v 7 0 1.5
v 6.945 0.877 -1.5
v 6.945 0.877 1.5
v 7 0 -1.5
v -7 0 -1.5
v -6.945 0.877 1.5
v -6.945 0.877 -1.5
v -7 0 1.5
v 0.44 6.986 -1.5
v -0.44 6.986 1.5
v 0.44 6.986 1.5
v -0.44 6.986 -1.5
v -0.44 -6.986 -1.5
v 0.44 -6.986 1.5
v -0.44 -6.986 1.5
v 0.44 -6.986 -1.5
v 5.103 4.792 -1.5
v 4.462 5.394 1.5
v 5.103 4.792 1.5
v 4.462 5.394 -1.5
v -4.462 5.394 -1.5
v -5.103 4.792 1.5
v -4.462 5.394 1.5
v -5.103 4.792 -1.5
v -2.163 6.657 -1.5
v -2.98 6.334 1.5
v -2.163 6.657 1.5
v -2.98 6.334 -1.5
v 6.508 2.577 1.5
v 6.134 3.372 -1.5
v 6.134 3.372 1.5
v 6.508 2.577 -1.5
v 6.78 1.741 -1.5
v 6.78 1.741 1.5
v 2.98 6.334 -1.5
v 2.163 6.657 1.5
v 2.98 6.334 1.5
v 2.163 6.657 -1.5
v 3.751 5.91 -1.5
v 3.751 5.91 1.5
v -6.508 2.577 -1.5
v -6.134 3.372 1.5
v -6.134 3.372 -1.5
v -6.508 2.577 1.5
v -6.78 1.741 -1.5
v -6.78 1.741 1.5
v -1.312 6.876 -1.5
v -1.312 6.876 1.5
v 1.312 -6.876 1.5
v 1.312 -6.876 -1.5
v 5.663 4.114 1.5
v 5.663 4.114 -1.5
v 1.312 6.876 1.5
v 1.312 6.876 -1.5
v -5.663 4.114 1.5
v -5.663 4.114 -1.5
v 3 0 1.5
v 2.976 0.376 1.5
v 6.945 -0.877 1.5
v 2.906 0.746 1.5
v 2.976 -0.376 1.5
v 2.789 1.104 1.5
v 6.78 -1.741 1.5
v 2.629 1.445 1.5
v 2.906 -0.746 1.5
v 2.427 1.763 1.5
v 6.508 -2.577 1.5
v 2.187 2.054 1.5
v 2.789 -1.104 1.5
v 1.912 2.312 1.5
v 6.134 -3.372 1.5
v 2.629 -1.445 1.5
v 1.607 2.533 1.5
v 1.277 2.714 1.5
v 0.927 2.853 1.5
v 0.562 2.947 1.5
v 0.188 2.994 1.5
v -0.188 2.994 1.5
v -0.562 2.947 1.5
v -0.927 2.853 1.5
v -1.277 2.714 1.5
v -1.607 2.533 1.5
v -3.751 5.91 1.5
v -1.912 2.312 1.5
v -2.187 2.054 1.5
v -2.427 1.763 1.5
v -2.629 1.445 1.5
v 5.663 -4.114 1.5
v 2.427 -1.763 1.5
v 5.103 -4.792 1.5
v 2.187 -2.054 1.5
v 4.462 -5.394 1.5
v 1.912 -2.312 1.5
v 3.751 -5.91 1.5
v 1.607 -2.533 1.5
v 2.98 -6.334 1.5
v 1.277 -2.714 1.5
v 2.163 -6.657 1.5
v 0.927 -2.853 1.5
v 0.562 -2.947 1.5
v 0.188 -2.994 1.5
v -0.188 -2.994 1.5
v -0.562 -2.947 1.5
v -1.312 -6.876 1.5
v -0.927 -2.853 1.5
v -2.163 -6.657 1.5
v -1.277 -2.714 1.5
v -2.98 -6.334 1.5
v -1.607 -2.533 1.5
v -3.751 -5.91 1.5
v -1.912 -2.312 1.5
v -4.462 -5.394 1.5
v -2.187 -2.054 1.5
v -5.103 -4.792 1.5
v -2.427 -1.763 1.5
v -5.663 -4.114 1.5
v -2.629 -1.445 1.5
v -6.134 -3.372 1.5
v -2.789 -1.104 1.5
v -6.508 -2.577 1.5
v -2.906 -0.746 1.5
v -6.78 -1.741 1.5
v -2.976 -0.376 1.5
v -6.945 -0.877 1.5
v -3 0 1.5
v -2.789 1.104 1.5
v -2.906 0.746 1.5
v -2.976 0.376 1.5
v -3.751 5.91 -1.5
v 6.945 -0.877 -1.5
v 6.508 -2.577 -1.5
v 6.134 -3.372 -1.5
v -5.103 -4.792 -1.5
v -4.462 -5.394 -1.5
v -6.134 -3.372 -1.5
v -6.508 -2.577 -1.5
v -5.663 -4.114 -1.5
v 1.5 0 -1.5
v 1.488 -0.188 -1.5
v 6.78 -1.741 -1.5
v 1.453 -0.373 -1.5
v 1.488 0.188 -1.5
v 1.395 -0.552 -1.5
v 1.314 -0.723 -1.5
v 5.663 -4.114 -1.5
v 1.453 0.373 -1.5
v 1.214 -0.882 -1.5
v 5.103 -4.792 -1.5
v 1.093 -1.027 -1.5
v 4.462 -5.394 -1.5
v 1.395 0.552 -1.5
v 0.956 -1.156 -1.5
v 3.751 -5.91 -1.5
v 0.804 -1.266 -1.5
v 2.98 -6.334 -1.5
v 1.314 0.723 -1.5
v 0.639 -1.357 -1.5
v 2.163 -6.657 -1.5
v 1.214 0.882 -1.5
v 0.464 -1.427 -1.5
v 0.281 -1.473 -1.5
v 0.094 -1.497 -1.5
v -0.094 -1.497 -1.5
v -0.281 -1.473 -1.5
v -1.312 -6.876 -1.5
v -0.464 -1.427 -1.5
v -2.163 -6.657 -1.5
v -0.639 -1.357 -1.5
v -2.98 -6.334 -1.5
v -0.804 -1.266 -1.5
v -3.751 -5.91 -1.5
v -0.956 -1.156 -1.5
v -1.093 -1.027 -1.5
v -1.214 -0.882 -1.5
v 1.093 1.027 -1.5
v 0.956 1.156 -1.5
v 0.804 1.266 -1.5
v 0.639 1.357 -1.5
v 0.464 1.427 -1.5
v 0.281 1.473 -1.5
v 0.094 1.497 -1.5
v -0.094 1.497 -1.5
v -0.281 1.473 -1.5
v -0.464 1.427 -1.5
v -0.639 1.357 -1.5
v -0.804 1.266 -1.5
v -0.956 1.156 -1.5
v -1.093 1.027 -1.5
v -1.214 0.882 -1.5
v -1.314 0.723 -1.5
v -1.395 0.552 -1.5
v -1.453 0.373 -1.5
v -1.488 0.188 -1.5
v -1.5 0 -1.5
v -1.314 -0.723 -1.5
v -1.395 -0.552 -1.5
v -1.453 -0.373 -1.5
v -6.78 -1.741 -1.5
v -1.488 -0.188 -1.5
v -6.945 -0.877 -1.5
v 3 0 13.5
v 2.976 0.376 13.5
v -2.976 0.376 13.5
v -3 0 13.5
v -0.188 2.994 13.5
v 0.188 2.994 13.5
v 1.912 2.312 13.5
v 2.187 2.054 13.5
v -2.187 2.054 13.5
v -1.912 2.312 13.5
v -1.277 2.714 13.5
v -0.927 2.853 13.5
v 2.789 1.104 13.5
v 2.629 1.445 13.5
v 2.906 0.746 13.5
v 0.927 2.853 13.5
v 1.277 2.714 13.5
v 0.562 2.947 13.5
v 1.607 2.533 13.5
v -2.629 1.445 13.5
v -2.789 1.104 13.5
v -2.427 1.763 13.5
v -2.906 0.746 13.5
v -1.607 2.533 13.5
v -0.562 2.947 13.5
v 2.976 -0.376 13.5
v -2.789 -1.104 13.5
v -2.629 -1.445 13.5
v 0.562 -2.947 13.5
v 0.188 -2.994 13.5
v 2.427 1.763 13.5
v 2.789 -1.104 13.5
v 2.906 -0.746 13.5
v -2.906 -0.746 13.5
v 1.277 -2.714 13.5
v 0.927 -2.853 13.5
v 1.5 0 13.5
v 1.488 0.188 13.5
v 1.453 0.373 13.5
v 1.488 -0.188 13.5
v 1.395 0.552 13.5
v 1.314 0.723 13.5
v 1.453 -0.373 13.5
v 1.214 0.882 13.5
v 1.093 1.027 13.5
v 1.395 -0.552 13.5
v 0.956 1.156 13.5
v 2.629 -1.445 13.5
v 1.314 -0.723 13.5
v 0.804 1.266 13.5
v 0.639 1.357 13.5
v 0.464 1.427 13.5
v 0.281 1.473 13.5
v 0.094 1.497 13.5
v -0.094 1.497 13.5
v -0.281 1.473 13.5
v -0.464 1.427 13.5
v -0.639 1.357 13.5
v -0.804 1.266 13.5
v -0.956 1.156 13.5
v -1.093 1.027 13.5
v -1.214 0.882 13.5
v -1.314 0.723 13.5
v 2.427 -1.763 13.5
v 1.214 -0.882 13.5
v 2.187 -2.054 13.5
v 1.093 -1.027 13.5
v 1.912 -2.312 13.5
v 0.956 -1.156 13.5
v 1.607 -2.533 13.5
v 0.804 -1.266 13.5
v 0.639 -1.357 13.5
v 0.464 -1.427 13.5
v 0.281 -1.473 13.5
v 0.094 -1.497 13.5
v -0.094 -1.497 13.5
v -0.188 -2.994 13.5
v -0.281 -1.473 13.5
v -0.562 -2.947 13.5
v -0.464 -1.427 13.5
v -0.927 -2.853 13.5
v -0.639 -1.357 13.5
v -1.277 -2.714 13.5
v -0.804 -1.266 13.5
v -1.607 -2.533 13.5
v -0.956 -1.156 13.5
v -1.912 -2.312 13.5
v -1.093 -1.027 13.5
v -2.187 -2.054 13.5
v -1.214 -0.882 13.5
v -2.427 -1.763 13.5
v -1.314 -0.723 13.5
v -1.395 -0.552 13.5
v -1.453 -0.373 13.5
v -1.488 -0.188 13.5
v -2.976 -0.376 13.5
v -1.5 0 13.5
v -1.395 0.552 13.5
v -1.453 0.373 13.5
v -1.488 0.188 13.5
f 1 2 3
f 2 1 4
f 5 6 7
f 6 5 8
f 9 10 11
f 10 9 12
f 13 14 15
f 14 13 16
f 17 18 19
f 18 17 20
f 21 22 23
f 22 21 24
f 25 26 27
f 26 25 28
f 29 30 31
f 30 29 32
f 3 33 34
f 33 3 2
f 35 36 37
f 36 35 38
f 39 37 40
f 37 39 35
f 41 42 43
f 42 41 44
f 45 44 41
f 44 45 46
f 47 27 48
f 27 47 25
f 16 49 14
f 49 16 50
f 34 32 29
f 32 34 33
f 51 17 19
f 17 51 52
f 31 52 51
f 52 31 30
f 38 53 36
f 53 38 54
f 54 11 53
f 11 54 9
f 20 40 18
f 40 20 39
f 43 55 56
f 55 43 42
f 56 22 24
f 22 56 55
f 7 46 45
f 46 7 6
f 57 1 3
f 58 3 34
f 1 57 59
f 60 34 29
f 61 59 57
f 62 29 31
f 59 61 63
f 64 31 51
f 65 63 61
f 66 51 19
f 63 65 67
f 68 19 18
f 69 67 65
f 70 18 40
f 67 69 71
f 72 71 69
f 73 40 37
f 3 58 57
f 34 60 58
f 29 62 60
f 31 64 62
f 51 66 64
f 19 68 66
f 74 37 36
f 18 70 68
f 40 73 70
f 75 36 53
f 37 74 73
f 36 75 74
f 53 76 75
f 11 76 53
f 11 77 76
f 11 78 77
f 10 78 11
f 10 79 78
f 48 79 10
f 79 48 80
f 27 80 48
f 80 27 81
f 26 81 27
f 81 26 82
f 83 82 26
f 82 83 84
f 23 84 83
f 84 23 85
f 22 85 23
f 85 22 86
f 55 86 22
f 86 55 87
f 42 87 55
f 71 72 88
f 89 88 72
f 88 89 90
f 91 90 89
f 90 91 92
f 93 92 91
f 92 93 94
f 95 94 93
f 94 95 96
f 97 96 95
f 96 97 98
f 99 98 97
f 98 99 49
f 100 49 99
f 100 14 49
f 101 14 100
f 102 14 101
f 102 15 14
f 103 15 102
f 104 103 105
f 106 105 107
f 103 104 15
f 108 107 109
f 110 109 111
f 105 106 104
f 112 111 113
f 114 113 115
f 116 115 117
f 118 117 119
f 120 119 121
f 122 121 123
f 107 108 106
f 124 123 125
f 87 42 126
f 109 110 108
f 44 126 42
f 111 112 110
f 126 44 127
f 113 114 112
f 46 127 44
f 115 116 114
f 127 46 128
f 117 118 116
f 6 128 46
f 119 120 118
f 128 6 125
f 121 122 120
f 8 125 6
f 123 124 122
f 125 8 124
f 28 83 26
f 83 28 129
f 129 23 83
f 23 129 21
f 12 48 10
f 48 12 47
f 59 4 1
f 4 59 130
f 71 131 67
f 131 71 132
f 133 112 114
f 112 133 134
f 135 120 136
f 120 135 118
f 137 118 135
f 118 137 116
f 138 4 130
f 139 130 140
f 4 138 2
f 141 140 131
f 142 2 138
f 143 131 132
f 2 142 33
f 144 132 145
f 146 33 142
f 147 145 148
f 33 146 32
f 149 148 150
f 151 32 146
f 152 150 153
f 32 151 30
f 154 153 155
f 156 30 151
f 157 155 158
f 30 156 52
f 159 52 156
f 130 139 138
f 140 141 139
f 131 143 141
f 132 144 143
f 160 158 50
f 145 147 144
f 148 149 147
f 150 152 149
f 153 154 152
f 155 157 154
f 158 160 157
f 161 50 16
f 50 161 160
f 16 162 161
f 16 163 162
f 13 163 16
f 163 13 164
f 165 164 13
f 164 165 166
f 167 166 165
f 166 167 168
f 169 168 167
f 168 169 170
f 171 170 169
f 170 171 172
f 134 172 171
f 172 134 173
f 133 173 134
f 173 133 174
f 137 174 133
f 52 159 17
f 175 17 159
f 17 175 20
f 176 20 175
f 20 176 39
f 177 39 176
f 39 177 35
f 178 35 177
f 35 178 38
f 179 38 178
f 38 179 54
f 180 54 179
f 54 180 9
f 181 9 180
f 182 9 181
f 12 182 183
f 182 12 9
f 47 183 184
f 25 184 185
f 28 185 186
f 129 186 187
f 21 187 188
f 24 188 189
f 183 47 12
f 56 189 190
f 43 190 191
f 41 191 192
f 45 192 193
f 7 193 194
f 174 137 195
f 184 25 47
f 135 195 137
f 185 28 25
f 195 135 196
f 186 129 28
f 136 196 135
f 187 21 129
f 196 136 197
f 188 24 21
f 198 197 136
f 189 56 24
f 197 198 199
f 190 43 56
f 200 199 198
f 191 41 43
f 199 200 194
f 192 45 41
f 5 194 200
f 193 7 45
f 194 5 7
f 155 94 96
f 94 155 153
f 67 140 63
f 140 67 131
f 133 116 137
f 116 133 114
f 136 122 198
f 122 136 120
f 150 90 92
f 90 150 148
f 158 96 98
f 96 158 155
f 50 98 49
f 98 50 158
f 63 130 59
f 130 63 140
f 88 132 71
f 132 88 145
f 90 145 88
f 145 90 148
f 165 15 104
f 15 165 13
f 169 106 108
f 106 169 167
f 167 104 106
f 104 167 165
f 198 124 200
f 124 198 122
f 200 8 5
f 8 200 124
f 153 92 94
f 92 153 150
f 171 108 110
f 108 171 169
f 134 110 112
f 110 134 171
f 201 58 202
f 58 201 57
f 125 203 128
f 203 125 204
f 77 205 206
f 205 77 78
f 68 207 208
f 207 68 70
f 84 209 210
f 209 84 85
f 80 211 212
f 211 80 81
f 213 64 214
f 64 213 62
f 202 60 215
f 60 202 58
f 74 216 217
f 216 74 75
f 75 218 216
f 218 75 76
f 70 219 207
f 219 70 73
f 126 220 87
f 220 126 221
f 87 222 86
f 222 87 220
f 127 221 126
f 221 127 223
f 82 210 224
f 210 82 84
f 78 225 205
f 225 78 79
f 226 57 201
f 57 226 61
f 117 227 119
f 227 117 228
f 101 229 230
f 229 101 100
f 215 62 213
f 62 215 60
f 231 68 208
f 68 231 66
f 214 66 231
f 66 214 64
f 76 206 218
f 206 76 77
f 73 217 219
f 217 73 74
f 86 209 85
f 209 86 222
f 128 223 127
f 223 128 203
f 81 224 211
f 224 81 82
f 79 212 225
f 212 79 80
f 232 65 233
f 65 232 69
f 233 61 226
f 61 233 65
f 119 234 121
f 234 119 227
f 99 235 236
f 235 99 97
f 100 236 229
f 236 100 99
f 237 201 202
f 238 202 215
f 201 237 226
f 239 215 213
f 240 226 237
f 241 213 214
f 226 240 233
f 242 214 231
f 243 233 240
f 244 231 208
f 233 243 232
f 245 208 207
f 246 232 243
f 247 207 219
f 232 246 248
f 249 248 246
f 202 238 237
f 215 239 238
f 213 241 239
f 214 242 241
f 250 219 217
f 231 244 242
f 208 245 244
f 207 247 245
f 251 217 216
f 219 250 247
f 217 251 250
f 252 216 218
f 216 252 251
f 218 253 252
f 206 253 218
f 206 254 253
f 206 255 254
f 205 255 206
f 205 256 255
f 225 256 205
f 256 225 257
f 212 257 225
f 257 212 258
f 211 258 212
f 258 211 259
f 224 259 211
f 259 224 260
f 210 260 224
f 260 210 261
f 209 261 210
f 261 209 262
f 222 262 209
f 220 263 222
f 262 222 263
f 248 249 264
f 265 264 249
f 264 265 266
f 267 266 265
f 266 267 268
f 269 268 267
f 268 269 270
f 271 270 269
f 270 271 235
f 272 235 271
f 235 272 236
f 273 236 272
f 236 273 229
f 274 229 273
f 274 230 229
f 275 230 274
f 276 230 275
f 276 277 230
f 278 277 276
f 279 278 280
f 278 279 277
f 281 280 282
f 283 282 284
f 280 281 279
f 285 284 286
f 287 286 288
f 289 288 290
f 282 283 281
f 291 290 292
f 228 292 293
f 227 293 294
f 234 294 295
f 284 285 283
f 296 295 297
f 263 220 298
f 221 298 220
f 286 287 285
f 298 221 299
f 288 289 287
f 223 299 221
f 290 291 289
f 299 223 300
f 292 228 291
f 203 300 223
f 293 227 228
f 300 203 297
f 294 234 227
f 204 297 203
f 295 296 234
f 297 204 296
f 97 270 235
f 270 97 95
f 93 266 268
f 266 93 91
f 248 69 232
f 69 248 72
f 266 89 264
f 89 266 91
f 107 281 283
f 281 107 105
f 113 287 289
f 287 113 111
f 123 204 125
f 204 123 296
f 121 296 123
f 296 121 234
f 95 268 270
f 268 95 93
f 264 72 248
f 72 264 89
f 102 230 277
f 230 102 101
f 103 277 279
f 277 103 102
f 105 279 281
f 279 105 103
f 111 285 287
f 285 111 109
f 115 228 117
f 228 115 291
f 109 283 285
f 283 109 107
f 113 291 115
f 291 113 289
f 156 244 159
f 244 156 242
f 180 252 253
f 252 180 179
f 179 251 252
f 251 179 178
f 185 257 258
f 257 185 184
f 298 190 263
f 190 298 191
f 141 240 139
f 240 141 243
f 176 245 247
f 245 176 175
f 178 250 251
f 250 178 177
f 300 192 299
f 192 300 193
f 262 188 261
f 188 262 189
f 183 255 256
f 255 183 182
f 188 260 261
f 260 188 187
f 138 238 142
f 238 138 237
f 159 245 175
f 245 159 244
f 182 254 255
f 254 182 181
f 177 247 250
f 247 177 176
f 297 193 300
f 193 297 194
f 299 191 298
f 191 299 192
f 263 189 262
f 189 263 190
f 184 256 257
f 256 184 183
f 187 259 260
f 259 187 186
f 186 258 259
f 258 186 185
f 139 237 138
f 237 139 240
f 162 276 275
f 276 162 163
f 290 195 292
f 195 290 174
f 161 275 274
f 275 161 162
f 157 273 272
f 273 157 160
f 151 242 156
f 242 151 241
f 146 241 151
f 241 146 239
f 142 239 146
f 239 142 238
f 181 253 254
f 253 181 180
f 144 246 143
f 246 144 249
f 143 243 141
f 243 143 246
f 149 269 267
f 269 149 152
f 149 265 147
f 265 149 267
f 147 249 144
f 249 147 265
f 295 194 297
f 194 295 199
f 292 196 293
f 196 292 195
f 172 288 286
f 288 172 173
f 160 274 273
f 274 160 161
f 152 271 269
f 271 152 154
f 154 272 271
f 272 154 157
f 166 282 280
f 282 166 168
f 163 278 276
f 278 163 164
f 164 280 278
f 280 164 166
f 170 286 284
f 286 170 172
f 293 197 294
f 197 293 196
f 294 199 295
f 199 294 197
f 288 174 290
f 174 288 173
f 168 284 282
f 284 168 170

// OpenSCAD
$fn = 50;


difference() {
	union() {
		translate(v = [0, 0, -1.5000000000]) {
			cylinder(h = 3, r = 7.0000000000);
		}
		translate(v = [0, 0, -1.5000000000]) {
			cylinder(h = 15, r = 3.0000000000);
		}
	}
	union() {
		translate(v = [0, 0, -100.0000000000]) {
			cylinder(h = 200, r = 1.5000000000);
		}
	}
}
